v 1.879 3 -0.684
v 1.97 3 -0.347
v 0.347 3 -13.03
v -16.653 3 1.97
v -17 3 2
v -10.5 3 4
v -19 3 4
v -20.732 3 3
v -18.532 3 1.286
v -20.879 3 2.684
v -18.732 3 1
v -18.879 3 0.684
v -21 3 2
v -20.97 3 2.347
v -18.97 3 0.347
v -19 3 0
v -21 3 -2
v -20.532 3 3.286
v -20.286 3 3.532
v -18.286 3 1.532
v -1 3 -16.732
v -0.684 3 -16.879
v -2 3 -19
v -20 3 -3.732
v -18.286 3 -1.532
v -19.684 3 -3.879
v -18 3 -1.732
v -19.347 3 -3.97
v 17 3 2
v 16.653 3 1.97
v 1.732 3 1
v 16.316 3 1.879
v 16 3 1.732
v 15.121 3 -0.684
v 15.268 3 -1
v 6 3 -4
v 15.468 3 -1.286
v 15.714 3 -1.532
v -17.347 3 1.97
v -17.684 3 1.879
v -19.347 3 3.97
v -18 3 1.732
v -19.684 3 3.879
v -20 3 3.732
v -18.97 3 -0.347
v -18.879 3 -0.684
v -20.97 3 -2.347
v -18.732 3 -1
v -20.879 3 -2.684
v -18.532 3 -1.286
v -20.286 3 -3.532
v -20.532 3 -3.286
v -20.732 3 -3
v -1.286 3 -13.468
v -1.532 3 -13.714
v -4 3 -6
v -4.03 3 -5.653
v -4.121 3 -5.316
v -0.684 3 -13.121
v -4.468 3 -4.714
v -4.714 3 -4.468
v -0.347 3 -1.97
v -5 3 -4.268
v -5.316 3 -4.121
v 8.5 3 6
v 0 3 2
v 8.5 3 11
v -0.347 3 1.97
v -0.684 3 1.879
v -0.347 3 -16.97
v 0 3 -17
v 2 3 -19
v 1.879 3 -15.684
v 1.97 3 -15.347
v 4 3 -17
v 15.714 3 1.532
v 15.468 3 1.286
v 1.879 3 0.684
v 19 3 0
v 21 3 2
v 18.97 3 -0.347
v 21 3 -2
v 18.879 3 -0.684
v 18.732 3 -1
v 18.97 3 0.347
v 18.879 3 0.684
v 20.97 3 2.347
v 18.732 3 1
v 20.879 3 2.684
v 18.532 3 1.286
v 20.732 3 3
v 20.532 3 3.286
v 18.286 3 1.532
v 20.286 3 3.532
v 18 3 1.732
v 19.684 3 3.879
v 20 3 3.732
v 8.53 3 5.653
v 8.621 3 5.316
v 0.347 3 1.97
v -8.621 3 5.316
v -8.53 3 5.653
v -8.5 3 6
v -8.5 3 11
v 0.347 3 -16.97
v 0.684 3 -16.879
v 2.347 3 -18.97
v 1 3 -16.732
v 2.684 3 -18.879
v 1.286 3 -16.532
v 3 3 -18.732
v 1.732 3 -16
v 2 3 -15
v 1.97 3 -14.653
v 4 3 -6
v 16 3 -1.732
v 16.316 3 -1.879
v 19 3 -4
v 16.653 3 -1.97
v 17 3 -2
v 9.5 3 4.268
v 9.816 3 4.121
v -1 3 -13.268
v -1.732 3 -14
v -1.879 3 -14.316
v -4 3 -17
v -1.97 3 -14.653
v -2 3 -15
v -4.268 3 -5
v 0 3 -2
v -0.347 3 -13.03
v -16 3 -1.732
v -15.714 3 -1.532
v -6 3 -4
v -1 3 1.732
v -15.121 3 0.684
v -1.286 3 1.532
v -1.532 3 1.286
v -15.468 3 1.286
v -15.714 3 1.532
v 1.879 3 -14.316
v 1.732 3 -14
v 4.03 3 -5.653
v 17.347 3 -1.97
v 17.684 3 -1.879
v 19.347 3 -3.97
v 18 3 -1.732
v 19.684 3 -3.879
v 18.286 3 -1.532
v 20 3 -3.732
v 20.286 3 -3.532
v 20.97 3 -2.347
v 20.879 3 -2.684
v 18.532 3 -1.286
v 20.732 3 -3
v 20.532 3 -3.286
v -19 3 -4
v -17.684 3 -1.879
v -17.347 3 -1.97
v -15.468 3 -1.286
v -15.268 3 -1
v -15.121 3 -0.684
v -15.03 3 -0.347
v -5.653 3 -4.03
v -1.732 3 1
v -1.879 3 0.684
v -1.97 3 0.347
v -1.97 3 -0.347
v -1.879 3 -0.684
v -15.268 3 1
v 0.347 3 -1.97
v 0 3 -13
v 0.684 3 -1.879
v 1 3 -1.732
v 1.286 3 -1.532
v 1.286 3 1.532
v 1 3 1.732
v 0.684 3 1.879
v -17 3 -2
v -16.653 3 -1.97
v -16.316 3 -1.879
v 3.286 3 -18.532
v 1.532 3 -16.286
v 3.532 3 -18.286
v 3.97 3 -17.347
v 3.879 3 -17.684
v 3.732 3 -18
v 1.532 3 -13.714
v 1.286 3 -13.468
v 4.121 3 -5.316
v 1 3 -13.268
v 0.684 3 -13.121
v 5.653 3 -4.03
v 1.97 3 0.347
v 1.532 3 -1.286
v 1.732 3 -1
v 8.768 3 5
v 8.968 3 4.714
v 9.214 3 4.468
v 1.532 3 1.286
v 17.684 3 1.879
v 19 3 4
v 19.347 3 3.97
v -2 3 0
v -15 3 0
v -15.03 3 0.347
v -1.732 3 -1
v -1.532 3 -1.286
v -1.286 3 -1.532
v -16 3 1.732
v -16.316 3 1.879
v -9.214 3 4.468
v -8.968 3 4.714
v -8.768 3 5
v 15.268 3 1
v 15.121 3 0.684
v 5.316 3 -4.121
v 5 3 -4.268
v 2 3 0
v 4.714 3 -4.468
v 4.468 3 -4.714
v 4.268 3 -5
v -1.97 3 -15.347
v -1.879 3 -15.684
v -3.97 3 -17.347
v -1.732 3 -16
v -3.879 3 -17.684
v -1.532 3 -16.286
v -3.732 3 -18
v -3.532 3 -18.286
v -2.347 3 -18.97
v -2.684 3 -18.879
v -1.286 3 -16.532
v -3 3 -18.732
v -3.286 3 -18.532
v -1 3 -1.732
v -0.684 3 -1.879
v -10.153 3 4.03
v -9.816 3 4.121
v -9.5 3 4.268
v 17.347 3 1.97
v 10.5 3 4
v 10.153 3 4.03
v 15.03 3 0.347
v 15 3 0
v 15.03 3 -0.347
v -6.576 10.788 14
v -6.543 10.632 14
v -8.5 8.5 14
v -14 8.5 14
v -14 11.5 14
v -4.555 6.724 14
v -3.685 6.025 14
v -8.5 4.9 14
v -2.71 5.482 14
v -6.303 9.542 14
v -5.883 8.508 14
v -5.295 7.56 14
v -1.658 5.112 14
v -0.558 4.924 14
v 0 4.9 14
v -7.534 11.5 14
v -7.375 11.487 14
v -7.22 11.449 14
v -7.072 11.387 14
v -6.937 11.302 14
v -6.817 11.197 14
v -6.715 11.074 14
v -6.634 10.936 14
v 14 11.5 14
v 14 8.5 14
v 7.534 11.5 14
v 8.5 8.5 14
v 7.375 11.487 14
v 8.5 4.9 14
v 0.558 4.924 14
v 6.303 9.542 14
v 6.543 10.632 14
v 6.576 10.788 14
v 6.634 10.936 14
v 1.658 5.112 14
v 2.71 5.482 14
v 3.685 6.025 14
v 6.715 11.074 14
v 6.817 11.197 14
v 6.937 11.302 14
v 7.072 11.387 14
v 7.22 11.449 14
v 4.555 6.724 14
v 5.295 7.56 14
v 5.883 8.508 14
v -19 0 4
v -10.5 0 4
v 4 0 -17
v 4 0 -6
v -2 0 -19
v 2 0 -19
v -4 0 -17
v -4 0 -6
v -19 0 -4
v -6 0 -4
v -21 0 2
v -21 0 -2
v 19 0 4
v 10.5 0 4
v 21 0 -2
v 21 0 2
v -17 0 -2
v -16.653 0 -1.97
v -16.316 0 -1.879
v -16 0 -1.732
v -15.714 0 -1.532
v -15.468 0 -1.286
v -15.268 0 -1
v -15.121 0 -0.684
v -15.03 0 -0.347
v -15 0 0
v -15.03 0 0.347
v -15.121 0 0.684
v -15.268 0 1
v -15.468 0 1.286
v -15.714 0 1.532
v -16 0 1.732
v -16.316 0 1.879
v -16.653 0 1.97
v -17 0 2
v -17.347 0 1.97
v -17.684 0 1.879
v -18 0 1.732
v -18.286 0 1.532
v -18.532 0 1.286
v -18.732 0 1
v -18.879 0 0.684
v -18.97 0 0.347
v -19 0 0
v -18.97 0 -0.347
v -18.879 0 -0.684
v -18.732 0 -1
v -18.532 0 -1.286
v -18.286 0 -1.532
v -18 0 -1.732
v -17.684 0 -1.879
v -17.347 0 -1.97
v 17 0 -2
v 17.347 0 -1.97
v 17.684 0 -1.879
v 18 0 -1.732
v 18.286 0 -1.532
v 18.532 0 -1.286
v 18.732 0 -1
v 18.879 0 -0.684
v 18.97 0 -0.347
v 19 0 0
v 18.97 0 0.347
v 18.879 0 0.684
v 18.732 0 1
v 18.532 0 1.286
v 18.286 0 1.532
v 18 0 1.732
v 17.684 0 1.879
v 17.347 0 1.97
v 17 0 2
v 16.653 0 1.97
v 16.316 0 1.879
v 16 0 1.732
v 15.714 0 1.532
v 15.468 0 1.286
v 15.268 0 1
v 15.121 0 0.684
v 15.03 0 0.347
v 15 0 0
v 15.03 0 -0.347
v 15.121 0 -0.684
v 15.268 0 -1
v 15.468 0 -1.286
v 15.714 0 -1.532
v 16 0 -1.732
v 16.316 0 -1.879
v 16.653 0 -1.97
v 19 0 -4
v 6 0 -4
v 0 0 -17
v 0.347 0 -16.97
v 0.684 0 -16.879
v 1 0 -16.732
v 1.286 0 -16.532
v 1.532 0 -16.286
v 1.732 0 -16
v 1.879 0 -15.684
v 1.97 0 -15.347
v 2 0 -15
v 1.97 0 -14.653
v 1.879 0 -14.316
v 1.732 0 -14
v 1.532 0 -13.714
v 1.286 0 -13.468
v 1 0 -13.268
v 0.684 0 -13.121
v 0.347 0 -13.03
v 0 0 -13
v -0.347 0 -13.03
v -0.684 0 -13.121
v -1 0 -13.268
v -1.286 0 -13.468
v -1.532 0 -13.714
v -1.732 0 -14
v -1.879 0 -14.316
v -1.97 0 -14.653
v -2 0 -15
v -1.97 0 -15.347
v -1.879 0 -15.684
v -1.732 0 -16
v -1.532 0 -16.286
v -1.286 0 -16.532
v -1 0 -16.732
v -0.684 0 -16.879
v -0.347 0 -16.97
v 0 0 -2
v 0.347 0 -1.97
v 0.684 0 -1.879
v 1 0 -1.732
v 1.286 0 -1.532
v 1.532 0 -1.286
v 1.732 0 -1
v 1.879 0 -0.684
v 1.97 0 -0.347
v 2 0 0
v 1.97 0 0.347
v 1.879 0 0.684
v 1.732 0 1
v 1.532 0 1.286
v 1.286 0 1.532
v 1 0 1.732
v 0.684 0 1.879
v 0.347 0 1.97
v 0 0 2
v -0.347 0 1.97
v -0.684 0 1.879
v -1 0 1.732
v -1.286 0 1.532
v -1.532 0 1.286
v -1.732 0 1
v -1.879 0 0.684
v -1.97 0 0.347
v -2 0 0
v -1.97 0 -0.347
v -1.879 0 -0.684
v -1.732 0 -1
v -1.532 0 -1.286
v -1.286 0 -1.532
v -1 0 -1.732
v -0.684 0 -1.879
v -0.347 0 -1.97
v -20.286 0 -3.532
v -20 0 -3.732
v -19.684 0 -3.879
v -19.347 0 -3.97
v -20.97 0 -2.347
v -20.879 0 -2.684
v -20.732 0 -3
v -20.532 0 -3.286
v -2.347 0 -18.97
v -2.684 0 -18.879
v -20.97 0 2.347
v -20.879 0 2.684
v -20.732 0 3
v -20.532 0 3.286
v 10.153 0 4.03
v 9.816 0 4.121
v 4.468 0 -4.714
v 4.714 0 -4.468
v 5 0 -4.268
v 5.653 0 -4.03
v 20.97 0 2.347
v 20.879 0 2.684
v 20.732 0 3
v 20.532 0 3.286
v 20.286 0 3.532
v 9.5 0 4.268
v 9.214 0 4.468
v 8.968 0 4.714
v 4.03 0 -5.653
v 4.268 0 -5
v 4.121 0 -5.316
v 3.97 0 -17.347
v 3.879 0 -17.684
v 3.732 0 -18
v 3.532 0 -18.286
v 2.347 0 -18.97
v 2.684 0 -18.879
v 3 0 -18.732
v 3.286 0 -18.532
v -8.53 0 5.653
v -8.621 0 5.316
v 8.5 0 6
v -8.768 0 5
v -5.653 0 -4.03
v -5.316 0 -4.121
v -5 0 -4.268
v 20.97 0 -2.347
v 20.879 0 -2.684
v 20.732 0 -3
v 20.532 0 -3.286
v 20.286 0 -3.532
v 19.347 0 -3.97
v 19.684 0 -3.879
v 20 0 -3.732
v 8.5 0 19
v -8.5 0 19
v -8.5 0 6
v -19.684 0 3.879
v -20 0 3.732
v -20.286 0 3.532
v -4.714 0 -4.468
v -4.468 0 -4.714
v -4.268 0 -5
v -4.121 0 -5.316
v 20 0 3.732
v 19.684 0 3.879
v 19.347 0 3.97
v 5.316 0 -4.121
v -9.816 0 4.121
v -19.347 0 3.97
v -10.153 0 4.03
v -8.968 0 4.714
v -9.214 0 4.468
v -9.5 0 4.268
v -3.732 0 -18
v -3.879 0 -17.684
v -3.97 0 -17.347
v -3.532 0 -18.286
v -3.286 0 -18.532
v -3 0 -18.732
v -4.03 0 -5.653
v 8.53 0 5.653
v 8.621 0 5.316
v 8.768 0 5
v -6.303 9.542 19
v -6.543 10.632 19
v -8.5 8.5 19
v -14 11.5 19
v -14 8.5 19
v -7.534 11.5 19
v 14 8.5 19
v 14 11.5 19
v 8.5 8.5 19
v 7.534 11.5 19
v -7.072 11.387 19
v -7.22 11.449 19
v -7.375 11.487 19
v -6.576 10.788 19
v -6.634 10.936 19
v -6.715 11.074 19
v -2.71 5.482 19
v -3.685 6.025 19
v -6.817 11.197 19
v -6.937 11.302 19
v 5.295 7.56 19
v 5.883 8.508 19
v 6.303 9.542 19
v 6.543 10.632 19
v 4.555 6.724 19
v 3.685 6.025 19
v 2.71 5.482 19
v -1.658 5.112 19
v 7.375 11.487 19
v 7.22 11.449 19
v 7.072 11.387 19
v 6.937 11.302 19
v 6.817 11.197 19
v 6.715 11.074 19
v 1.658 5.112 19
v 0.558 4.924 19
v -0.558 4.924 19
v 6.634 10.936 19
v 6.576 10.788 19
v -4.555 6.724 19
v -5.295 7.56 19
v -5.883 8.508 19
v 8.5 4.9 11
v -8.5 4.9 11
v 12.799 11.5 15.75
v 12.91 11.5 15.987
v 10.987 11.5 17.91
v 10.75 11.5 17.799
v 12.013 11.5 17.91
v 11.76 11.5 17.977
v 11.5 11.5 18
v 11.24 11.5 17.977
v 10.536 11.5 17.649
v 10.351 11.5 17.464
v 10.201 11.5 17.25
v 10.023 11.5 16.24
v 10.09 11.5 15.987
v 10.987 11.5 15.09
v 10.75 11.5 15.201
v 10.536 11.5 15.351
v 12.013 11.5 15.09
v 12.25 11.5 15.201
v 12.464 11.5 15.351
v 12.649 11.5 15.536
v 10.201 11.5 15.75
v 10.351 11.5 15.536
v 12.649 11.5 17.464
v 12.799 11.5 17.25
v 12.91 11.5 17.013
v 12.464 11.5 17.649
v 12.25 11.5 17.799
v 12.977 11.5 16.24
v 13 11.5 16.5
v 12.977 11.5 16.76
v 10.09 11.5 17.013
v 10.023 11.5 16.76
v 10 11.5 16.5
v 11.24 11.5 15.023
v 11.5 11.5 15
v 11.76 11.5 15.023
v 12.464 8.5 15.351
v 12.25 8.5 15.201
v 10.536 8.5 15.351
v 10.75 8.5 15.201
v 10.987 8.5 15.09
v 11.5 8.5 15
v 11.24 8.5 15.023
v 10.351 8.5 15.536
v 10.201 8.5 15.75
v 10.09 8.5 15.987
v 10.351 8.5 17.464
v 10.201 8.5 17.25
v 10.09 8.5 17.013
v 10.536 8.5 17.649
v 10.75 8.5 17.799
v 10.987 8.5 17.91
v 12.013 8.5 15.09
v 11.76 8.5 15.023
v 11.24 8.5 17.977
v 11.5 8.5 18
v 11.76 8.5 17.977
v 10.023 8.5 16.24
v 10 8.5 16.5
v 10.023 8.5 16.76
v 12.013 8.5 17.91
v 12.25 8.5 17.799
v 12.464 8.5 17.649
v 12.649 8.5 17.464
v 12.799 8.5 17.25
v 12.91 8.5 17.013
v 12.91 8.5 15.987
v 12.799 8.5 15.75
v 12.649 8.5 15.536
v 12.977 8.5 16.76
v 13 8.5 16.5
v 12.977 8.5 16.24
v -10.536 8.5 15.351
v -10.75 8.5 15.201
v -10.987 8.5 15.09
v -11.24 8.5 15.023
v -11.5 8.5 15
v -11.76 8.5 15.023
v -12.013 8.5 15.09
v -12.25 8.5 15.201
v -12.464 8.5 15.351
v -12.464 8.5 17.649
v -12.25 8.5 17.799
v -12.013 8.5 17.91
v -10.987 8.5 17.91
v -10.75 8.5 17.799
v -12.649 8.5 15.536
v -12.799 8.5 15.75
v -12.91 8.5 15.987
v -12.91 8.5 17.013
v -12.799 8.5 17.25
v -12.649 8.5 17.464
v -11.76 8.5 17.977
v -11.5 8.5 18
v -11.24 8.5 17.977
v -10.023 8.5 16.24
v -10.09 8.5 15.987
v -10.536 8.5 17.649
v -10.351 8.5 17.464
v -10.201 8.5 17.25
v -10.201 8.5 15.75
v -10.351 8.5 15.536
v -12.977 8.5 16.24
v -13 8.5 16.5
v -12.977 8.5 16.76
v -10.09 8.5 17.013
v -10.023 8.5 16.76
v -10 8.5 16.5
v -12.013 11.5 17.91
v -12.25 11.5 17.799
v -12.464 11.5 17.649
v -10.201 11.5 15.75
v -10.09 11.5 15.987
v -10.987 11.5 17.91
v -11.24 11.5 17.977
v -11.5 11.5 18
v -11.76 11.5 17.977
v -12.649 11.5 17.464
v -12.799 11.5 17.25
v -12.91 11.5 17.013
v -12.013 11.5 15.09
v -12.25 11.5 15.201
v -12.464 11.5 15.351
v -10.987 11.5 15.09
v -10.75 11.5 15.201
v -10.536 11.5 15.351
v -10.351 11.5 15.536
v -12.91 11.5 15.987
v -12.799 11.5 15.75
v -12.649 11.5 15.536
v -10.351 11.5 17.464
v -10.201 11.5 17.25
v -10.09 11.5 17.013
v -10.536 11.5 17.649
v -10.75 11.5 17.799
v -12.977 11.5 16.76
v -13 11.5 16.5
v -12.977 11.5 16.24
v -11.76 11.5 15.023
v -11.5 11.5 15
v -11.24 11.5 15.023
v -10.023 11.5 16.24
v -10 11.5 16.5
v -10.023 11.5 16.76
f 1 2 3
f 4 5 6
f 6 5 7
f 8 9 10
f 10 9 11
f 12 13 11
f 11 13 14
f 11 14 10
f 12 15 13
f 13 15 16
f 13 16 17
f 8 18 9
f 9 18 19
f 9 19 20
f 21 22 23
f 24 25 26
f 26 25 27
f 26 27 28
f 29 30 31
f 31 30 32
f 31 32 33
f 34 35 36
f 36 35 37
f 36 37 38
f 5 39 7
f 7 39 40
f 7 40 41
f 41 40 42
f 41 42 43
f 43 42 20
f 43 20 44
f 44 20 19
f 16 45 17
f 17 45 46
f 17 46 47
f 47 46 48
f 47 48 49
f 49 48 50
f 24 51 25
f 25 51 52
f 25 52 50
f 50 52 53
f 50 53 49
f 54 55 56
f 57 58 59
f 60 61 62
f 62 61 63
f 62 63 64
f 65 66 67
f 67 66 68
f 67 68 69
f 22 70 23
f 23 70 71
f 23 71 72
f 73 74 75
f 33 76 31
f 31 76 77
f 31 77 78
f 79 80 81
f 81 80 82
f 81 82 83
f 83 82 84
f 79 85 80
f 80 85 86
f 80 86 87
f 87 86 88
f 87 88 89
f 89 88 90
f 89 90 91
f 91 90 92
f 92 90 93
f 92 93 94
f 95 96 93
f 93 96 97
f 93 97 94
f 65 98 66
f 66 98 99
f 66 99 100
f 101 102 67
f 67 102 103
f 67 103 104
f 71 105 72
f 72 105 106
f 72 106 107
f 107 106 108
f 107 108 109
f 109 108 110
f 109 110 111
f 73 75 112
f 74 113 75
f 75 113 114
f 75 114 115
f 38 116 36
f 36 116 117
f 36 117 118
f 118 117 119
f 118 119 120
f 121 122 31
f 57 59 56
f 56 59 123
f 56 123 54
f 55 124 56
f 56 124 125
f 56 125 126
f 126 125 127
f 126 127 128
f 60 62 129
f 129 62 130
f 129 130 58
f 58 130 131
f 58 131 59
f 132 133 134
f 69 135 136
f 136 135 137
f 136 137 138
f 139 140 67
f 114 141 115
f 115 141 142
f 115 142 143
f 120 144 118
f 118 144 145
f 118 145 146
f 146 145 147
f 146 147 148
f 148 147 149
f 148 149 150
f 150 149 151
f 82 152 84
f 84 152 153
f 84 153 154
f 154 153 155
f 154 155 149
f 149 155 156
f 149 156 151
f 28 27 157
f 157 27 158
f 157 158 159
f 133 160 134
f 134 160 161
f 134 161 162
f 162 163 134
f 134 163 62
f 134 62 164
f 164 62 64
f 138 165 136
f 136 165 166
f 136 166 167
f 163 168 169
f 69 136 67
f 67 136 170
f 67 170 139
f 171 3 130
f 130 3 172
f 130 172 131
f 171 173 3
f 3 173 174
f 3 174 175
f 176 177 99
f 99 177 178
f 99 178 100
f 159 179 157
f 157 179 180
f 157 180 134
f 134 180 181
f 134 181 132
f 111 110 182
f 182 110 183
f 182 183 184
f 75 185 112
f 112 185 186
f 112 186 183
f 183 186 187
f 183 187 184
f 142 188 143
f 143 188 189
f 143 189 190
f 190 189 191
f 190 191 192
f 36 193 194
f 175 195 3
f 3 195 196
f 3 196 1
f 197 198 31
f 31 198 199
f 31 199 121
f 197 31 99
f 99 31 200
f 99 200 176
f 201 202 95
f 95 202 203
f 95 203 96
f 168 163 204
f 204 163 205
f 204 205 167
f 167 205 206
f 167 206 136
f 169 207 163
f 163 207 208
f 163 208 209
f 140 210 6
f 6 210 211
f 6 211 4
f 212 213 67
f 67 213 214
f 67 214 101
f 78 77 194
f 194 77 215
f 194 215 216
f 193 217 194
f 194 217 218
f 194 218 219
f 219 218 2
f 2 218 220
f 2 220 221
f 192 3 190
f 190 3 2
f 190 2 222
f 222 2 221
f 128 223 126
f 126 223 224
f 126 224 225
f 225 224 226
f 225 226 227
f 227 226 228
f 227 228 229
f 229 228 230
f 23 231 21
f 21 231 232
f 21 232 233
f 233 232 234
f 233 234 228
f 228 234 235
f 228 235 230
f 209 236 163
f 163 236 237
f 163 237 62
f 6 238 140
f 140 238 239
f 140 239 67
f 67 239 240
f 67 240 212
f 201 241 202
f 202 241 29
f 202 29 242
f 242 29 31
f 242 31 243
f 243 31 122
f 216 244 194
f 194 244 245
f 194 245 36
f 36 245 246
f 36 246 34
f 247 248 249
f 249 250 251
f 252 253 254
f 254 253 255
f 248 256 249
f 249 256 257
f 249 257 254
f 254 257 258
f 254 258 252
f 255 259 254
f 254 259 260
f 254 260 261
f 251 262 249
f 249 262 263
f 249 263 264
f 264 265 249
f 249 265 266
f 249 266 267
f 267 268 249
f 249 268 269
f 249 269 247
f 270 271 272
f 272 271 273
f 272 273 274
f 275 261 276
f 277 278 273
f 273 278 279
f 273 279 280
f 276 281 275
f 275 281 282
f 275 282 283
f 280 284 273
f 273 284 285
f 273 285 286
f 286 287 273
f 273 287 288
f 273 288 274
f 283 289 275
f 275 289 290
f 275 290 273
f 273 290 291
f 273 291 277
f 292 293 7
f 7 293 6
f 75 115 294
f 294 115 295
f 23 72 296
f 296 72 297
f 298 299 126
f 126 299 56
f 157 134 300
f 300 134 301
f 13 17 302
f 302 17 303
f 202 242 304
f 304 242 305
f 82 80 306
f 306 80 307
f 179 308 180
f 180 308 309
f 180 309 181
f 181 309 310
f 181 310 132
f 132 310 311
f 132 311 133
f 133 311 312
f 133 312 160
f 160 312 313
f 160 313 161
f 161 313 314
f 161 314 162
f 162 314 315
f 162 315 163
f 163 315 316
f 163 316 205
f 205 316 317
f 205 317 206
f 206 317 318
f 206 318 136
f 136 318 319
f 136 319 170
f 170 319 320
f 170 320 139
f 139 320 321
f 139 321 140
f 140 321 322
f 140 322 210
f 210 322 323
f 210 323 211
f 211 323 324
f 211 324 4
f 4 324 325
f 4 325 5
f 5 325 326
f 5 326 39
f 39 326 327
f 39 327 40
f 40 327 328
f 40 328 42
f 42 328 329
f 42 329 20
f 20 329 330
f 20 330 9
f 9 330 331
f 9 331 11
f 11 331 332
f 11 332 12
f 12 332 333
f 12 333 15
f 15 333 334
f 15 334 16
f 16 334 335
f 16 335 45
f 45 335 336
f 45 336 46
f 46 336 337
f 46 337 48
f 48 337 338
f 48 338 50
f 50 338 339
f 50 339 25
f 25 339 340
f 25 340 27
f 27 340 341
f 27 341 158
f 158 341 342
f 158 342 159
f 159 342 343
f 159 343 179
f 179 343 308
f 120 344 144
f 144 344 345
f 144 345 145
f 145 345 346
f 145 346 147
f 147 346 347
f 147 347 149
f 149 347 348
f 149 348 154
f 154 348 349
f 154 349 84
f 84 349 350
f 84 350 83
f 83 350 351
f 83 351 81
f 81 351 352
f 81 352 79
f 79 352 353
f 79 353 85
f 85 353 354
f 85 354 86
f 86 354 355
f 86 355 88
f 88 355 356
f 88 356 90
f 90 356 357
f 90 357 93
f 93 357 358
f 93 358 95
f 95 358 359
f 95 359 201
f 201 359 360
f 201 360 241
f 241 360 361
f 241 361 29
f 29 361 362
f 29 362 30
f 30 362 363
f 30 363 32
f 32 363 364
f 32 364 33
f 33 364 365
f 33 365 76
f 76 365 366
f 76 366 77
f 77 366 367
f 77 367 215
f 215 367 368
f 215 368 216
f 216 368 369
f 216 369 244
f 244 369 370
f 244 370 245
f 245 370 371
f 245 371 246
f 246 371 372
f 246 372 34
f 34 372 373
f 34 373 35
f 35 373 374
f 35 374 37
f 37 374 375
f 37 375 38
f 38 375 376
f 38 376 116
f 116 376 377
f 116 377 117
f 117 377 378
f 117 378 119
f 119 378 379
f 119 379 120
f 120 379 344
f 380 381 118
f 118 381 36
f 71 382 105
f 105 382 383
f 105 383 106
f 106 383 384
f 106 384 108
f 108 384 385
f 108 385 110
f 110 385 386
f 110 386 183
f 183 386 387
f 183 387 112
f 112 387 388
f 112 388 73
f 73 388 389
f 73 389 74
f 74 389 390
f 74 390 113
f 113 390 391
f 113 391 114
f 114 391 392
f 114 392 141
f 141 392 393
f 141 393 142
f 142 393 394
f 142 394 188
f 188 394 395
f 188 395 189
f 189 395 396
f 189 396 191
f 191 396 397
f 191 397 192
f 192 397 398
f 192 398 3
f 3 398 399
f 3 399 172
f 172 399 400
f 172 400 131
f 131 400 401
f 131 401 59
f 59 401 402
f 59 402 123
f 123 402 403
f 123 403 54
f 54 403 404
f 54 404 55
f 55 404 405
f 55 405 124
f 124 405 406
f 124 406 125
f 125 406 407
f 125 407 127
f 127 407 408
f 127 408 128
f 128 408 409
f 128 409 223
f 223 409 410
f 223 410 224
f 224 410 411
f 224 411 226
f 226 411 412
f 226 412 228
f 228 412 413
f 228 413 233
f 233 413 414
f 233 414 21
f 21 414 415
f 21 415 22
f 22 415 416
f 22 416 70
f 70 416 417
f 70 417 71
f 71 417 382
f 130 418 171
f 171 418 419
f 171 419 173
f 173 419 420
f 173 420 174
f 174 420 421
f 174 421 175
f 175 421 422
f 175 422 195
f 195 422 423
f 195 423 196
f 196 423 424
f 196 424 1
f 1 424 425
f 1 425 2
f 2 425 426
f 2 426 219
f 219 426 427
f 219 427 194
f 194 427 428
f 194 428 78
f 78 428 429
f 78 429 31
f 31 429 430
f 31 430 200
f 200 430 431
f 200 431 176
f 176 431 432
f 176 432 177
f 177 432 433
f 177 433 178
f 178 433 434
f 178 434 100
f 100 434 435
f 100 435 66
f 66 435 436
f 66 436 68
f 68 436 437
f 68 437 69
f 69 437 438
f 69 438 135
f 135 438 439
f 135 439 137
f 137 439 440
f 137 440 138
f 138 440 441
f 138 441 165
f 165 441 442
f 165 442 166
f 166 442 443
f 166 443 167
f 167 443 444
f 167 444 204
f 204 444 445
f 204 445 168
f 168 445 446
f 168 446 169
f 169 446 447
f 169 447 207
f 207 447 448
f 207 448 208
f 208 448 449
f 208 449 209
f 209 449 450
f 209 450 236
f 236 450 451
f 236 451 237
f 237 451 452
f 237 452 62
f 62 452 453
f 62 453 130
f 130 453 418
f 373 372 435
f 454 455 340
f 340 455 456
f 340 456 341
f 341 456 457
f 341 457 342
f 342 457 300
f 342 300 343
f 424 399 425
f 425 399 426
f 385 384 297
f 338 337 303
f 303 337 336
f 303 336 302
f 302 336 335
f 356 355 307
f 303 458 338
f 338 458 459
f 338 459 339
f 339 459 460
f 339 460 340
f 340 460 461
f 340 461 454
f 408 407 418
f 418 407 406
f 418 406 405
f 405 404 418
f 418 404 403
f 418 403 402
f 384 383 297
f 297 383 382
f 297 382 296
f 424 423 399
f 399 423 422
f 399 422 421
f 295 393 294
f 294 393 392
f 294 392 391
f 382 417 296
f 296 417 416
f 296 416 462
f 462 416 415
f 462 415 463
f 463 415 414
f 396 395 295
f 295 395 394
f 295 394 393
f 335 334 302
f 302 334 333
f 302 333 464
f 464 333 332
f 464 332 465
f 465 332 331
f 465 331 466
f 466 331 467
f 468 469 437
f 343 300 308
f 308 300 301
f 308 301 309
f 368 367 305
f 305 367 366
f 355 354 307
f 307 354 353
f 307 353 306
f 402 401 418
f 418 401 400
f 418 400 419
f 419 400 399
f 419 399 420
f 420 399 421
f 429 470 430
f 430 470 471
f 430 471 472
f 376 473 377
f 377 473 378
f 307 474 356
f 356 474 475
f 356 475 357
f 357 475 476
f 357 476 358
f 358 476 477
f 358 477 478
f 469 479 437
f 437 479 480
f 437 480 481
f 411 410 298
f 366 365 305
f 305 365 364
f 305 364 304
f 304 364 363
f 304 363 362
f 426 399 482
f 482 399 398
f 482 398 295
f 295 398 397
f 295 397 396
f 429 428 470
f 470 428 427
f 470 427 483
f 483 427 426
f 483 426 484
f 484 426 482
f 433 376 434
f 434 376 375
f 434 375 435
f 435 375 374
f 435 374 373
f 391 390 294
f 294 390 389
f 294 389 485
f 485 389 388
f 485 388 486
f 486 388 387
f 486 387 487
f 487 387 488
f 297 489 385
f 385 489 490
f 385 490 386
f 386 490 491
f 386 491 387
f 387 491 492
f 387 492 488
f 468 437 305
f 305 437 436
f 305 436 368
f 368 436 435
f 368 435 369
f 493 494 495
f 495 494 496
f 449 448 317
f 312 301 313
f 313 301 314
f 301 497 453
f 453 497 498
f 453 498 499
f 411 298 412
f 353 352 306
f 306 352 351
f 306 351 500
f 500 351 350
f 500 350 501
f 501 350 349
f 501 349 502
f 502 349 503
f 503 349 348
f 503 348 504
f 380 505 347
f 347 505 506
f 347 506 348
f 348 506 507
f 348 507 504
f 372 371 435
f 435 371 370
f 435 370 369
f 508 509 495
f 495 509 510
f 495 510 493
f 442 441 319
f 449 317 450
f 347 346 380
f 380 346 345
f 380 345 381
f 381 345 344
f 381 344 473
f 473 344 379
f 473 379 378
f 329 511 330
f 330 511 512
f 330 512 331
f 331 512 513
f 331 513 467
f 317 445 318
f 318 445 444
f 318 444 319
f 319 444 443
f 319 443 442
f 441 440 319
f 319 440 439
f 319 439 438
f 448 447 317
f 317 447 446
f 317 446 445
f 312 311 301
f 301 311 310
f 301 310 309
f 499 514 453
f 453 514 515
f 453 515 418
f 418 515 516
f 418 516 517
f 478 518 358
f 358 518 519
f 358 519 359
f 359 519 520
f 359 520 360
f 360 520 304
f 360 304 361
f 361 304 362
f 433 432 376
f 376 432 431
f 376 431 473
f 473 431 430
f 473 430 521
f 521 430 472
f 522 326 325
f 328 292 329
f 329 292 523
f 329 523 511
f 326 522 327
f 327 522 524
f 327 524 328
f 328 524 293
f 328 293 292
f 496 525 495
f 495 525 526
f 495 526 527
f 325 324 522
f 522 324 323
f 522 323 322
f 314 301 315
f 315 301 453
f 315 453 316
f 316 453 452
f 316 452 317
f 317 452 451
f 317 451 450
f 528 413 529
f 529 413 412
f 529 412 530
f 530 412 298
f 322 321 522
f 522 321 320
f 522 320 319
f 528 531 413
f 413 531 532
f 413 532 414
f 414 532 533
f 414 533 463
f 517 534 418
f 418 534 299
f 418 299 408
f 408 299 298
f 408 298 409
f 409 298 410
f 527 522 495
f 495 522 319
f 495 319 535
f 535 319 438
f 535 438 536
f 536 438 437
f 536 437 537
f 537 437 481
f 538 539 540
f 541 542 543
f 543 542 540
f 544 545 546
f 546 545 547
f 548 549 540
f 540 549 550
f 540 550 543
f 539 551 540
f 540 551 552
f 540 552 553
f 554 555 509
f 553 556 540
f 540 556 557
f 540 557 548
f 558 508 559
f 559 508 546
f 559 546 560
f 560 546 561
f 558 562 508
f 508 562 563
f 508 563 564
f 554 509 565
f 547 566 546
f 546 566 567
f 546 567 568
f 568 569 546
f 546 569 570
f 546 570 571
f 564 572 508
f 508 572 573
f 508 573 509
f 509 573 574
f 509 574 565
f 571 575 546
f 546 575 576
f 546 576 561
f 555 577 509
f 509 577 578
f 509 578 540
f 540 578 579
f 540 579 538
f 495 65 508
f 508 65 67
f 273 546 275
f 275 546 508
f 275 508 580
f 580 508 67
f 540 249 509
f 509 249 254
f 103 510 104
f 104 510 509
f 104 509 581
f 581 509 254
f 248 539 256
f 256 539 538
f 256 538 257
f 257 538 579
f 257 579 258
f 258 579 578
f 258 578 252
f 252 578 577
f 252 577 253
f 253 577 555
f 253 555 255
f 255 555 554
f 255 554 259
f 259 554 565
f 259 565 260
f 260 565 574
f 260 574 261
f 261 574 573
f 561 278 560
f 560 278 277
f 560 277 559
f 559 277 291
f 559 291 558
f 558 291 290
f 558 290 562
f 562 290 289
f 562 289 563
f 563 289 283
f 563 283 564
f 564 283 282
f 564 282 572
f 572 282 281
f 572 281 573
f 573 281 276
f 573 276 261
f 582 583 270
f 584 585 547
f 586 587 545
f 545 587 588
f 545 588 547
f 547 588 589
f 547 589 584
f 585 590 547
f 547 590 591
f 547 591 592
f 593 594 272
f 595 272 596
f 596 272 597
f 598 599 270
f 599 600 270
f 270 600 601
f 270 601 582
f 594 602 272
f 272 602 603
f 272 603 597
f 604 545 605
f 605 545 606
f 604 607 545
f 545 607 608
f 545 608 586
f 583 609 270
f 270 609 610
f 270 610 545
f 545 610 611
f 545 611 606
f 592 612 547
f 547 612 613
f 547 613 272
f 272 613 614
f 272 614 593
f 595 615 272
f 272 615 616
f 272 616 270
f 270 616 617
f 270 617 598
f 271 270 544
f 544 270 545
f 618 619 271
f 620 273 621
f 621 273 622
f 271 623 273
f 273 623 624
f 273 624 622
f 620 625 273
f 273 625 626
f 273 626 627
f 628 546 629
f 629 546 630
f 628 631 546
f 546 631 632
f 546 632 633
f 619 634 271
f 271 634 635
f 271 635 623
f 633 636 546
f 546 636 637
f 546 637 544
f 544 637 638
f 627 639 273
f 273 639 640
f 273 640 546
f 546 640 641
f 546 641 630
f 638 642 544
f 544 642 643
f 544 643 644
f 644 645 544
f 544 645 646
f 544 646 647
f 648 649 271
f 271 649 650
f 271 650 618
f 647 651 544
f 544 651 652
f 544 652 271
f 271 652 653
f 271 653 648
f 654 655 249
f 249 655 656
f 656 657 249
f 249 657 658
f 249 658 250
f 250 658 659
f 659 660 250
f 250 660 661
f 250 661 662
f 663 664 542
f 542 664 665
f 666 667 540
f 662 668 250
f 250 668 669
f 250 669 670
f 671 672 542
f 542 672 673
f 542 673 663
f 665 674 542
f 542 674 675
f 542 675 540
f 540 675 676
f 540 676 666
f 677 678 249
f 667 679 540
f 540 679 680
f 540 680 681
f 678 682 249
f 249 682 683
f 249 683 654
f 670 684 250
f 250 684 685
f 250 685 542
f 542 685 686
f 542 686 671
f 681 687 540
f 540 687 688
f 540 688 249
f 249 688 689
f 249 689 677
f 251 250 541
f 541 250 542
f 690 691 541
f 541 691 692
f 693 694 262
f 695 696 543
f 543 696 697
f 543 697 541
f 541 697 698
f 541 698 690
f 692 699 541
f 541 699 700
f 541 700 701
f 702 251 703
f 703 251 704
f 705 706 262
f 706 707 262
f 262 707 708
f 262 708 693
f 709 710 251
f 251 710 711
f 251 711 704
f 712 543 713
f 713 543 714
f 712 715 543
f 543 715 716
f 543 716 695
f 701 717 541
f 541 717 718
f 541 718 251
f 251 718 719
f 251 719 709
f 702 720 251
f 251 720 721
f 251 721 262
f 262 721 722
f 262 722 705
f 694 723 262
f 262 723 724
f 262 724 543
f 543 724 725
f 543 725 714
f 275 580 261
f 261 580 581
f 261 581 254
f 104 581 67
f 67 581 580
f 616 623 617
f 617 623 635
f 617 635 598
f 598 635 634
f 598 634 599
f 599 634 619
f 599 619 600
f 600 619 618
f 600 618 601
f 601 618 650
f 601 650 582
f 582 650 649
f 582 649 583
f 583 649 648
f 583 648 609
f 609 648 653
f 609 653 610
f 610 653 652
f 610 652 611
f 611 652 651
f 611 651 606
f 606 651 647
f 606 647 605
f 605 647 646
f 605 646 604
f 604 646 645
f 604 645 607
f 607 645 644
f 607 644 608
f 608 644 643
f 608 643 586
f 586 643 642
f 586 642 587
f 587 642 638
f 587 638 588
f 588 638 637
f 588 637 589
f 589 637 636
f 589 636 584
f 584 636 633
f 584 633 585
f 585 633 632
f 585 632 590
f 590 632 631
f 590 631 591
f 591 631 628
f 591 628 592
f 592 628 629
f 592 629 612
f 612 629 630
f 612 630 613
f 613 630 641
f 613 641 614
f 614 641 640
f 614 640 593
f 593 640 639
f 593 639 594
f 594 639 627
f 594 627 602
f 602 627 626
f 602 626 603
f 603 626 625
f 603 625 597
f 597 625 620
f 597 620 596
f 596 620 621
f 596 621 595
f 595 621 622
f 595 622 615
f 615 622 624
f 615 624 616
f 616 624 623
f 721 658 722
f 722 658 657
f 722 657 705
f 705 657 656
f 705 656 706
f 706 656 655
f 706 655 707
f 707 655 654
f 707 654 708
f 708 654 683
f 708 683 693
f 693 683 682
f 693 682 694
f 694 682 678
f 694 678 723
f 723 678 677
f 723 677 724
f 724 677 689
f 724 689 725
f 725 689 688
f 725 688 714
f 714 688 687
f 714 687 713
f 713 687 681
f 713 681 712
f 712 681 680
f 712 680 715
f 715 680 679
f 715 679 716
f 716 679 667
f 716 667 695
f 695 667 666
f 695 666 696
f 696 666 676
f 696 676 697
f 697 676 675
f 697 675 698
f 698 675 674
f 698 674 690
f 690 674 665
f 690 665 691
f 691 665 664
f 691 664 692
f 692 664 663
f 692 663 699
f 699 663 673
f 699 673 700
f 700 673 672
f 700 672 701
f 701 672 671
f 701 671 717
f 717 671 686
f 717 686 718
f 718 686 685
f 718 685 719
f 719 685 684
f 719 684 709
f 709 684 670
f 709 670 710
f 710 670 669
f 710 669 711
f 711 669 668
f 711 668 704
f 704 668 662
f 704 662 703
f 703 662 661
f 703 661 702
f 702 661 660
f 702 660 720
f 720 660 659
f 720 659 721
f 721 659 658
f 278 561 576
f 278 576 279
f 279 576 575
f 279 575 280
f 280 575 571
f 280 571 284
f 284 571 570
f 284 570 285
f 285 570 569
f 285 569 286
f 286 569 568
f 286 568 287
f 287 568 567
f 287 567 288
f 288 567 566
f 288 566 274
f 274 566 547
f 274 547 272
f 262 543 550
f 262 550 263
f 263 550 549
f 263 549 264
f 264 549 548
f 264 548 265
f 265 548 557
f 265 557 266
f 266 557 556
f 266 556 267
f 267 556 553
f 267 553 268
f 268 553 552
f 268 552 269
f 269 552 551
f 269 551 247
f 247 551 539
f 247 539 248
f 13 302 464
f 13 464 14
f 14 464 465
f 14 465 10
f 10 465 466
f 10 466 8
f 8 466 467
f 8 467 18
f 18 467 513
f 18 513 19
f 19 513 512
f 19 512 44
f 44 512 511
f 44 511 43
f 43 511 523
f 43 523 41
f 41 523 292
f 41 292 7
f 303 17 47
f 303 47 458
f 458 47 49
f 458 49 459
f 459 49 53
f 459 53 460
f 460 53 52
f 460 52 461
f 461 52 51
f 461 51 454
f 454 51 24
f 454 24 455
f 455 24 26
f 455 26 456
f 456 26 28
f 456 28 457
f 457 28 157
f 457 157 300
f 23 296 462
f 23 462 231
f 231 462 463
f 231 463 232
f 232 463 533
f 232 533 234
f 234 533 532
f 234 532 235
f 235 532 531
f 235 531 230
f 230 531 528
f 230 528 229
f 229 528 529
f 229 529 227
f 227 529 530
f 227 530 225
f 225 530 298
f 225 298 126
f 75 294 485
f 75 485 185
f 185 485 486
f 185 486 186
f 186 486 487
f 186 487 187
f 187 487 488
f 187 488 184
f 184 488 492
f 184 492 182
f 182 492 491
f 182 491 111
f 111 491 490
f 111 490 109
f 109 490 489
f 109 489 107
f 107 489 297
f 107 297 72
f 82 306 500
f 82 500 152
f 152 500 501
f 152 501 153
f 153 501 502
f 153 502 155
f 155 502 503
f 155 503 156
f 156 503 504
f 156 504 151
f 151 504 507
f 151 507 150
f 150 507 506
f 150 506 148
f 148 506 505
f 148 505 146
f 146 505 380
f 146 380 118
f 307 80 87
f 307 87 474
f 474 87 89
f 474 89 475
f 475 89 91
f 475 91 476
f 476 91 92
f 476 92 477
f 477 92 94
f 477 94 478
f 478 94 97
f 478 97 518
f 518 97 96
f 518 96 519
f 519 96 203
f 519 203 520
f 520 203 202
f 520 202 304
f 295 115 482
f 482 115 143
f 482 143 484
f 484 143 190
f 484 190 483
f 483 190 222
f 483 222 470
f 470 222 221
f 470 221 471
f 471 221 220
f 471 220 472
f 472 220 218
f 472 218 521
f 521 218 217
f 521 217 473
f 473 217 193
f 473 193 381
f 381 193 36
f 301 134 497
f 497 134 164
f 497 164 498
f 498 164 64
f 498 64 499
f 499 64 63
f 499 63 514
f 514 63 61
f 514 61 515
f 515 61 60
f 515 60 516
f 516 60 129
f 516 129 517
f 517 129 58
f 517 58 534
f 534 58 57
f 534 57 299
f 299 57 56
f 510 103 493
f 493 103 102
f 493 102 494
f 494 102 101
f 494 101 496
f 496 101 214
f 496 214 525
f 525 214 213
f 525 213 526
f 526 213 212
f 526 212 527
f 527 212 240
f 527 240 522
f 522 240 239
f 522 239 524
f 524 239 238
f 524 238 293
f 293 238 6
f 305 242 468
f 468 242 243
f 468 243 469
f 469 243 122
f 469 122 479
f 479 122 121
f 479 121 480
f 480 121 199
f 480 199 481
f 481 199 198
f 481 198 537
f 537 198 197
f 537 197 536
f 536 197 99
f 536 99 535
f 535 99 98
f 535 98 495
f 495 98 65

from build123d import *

# Parameters (mm, degrees)
SKETCH2_R           = 2
BOSS_EXTRUDE1_DEPTH = 3
SKETCH2_3_W         = 17
SKETCH2_3_H         = 15
BOSS_EXTRUDE2_DEPTH = 3
BOSS_EXTRUDE3_DEPTH = 5
SKETCH4_W           = 17
SKETCH4_H           = 1.9
BOSS_EXTRUDE4_DEPTH = 3
SKETCH5_R           = 1.5
CUT_EXTRUDE1_DEPTH  = 30.567718884
FILLET1_R           = 1
FILLET2_R           = 2


with BuildPart() as part:
    # Sketch2 → Boss-Extrude1 (new body)
    with BuildSketch(Plane(origin=(0, 0, 0), x_dir=(1, 0, 0), z_dir=(0, 1, 0))):
        Polygon((-4, 4), (-21, 4), (-21, -4), (21, -4), (21, 4), (4, 4), (4, 19), (-4, 19), align=None)
        with Locations((-17, 0)):
            Circle(SKETCH2_R, mode=Mode.SUBTRACT)
        Circle(SKETCH2_R, mode=Mode.SUBTRACT)
        with Locations((17, 0)):
            Circle(SKETCH2_R, mode=Mode.SUBTRACT)
        with Locations((0, 15)):
            Circle(SKETCH2_R, mode=Mode.SUBTRACT)
    extrude(amount=BOSS_EXTRUDE1_DEPTH)

    # Sketch2<3> → Boss-Extrude2 (add)
    with BuildSketch(Plane(origin=(0, 0, 0), x_dir=(1, 0, 0), z_dir=(0, 1, 0))):
        with Locations((0, -11.5)):
            Rectangle(SKETCH2_3_W, SKETCH2_3_H)
    extrude(amount=BOSS_EXTRUDE2_DEPTH)

    # Sketch3 → Boss-Extrude3 (add)
    with BuildSketch(Plane.XY.offset(19)):
        with BuildLine():
            Line((-8.5, 11.5), (-14, 11.5))
            Line((-14, 11.5), (-14, 8.5))
            Line((-14, 8.5), (-8.5, 8.5))
            Line((-8.5, 8.5), (-8.5, 3))
            Line((-8.5, 3), (8.5, 3))
            Line((8.5, 3), (8.5, 8.5))
            Line((8.5, 8.5), (14, 8.5))
            Line((14, 8.5), (14, 11.5))
            Line((14, 11.5), (8.5, 11.5))
            Line((8.5, 11.5), (6.6, 11.5))
            ThreePointArc((6.6, 11.5), (0, 4.9), (-6.6, 11.5))
            Line((-6.6, 11.5), (-8.5, 11.5))
        make_face()
    extrude(amount=-BOSS_EXTRUDE3_DEPTH)

    # Sketch4 → Boss-Extrude4 (add)
    with BuildSketch(Plane(origin=(0, 0, 14), x_dir=(-1, 0, 0), z_dir=(0, 0, -1))):
        with Locations((0, 3.95)):
            Rectangle(SKETCH4_W, SKETCH4_H)
    extrude(amount=BOSS_EXTRUDE4_DEPTH)

    # Sketch5 → Cut-Extrude1 (cut, through all)
    with BuildSketch(Plane.XZ.offset(-8.5)):
        with Locations((11.5, 16.5)):
            Circle(SKETCH5_R)
        with Locations((-11.5, 16.5)):
            Circle(SKETCH5_R)
    extrude(amount=-CUT_EXTRUDE1_DEPTH, mode=Mode.SUBTRACT)

    # Fillet1
    fillet1_edges = [part.edges().sort_by_distance(p)[0] for p in [
        (6.6, 11.5, 16.5),
        (-6.6, 11.5, 16.5),
    ]]
    fillet(fillet1_edges, radius=FILLET1_R)

    # Fillet2
    fillet2_edges = [part.edges().sort_by_distance(p)[0] for p in [
        (-21, 1.5, 4),
        (-21, 1.5, -4),
        (-4, 1.5, -19),
        (4, 1.5, -19),
        (21, 1.5, -4),
        (21, 1.5, 4),
        (4, 1.5, -4),
        (-4, 1.5, -4),
        (-8.5, 1.5, 4),
        (8.5, 1.5, 4),
    ]]
    fillet(fillet2_edges, radius=FILLET2_R)


solid = part.part
